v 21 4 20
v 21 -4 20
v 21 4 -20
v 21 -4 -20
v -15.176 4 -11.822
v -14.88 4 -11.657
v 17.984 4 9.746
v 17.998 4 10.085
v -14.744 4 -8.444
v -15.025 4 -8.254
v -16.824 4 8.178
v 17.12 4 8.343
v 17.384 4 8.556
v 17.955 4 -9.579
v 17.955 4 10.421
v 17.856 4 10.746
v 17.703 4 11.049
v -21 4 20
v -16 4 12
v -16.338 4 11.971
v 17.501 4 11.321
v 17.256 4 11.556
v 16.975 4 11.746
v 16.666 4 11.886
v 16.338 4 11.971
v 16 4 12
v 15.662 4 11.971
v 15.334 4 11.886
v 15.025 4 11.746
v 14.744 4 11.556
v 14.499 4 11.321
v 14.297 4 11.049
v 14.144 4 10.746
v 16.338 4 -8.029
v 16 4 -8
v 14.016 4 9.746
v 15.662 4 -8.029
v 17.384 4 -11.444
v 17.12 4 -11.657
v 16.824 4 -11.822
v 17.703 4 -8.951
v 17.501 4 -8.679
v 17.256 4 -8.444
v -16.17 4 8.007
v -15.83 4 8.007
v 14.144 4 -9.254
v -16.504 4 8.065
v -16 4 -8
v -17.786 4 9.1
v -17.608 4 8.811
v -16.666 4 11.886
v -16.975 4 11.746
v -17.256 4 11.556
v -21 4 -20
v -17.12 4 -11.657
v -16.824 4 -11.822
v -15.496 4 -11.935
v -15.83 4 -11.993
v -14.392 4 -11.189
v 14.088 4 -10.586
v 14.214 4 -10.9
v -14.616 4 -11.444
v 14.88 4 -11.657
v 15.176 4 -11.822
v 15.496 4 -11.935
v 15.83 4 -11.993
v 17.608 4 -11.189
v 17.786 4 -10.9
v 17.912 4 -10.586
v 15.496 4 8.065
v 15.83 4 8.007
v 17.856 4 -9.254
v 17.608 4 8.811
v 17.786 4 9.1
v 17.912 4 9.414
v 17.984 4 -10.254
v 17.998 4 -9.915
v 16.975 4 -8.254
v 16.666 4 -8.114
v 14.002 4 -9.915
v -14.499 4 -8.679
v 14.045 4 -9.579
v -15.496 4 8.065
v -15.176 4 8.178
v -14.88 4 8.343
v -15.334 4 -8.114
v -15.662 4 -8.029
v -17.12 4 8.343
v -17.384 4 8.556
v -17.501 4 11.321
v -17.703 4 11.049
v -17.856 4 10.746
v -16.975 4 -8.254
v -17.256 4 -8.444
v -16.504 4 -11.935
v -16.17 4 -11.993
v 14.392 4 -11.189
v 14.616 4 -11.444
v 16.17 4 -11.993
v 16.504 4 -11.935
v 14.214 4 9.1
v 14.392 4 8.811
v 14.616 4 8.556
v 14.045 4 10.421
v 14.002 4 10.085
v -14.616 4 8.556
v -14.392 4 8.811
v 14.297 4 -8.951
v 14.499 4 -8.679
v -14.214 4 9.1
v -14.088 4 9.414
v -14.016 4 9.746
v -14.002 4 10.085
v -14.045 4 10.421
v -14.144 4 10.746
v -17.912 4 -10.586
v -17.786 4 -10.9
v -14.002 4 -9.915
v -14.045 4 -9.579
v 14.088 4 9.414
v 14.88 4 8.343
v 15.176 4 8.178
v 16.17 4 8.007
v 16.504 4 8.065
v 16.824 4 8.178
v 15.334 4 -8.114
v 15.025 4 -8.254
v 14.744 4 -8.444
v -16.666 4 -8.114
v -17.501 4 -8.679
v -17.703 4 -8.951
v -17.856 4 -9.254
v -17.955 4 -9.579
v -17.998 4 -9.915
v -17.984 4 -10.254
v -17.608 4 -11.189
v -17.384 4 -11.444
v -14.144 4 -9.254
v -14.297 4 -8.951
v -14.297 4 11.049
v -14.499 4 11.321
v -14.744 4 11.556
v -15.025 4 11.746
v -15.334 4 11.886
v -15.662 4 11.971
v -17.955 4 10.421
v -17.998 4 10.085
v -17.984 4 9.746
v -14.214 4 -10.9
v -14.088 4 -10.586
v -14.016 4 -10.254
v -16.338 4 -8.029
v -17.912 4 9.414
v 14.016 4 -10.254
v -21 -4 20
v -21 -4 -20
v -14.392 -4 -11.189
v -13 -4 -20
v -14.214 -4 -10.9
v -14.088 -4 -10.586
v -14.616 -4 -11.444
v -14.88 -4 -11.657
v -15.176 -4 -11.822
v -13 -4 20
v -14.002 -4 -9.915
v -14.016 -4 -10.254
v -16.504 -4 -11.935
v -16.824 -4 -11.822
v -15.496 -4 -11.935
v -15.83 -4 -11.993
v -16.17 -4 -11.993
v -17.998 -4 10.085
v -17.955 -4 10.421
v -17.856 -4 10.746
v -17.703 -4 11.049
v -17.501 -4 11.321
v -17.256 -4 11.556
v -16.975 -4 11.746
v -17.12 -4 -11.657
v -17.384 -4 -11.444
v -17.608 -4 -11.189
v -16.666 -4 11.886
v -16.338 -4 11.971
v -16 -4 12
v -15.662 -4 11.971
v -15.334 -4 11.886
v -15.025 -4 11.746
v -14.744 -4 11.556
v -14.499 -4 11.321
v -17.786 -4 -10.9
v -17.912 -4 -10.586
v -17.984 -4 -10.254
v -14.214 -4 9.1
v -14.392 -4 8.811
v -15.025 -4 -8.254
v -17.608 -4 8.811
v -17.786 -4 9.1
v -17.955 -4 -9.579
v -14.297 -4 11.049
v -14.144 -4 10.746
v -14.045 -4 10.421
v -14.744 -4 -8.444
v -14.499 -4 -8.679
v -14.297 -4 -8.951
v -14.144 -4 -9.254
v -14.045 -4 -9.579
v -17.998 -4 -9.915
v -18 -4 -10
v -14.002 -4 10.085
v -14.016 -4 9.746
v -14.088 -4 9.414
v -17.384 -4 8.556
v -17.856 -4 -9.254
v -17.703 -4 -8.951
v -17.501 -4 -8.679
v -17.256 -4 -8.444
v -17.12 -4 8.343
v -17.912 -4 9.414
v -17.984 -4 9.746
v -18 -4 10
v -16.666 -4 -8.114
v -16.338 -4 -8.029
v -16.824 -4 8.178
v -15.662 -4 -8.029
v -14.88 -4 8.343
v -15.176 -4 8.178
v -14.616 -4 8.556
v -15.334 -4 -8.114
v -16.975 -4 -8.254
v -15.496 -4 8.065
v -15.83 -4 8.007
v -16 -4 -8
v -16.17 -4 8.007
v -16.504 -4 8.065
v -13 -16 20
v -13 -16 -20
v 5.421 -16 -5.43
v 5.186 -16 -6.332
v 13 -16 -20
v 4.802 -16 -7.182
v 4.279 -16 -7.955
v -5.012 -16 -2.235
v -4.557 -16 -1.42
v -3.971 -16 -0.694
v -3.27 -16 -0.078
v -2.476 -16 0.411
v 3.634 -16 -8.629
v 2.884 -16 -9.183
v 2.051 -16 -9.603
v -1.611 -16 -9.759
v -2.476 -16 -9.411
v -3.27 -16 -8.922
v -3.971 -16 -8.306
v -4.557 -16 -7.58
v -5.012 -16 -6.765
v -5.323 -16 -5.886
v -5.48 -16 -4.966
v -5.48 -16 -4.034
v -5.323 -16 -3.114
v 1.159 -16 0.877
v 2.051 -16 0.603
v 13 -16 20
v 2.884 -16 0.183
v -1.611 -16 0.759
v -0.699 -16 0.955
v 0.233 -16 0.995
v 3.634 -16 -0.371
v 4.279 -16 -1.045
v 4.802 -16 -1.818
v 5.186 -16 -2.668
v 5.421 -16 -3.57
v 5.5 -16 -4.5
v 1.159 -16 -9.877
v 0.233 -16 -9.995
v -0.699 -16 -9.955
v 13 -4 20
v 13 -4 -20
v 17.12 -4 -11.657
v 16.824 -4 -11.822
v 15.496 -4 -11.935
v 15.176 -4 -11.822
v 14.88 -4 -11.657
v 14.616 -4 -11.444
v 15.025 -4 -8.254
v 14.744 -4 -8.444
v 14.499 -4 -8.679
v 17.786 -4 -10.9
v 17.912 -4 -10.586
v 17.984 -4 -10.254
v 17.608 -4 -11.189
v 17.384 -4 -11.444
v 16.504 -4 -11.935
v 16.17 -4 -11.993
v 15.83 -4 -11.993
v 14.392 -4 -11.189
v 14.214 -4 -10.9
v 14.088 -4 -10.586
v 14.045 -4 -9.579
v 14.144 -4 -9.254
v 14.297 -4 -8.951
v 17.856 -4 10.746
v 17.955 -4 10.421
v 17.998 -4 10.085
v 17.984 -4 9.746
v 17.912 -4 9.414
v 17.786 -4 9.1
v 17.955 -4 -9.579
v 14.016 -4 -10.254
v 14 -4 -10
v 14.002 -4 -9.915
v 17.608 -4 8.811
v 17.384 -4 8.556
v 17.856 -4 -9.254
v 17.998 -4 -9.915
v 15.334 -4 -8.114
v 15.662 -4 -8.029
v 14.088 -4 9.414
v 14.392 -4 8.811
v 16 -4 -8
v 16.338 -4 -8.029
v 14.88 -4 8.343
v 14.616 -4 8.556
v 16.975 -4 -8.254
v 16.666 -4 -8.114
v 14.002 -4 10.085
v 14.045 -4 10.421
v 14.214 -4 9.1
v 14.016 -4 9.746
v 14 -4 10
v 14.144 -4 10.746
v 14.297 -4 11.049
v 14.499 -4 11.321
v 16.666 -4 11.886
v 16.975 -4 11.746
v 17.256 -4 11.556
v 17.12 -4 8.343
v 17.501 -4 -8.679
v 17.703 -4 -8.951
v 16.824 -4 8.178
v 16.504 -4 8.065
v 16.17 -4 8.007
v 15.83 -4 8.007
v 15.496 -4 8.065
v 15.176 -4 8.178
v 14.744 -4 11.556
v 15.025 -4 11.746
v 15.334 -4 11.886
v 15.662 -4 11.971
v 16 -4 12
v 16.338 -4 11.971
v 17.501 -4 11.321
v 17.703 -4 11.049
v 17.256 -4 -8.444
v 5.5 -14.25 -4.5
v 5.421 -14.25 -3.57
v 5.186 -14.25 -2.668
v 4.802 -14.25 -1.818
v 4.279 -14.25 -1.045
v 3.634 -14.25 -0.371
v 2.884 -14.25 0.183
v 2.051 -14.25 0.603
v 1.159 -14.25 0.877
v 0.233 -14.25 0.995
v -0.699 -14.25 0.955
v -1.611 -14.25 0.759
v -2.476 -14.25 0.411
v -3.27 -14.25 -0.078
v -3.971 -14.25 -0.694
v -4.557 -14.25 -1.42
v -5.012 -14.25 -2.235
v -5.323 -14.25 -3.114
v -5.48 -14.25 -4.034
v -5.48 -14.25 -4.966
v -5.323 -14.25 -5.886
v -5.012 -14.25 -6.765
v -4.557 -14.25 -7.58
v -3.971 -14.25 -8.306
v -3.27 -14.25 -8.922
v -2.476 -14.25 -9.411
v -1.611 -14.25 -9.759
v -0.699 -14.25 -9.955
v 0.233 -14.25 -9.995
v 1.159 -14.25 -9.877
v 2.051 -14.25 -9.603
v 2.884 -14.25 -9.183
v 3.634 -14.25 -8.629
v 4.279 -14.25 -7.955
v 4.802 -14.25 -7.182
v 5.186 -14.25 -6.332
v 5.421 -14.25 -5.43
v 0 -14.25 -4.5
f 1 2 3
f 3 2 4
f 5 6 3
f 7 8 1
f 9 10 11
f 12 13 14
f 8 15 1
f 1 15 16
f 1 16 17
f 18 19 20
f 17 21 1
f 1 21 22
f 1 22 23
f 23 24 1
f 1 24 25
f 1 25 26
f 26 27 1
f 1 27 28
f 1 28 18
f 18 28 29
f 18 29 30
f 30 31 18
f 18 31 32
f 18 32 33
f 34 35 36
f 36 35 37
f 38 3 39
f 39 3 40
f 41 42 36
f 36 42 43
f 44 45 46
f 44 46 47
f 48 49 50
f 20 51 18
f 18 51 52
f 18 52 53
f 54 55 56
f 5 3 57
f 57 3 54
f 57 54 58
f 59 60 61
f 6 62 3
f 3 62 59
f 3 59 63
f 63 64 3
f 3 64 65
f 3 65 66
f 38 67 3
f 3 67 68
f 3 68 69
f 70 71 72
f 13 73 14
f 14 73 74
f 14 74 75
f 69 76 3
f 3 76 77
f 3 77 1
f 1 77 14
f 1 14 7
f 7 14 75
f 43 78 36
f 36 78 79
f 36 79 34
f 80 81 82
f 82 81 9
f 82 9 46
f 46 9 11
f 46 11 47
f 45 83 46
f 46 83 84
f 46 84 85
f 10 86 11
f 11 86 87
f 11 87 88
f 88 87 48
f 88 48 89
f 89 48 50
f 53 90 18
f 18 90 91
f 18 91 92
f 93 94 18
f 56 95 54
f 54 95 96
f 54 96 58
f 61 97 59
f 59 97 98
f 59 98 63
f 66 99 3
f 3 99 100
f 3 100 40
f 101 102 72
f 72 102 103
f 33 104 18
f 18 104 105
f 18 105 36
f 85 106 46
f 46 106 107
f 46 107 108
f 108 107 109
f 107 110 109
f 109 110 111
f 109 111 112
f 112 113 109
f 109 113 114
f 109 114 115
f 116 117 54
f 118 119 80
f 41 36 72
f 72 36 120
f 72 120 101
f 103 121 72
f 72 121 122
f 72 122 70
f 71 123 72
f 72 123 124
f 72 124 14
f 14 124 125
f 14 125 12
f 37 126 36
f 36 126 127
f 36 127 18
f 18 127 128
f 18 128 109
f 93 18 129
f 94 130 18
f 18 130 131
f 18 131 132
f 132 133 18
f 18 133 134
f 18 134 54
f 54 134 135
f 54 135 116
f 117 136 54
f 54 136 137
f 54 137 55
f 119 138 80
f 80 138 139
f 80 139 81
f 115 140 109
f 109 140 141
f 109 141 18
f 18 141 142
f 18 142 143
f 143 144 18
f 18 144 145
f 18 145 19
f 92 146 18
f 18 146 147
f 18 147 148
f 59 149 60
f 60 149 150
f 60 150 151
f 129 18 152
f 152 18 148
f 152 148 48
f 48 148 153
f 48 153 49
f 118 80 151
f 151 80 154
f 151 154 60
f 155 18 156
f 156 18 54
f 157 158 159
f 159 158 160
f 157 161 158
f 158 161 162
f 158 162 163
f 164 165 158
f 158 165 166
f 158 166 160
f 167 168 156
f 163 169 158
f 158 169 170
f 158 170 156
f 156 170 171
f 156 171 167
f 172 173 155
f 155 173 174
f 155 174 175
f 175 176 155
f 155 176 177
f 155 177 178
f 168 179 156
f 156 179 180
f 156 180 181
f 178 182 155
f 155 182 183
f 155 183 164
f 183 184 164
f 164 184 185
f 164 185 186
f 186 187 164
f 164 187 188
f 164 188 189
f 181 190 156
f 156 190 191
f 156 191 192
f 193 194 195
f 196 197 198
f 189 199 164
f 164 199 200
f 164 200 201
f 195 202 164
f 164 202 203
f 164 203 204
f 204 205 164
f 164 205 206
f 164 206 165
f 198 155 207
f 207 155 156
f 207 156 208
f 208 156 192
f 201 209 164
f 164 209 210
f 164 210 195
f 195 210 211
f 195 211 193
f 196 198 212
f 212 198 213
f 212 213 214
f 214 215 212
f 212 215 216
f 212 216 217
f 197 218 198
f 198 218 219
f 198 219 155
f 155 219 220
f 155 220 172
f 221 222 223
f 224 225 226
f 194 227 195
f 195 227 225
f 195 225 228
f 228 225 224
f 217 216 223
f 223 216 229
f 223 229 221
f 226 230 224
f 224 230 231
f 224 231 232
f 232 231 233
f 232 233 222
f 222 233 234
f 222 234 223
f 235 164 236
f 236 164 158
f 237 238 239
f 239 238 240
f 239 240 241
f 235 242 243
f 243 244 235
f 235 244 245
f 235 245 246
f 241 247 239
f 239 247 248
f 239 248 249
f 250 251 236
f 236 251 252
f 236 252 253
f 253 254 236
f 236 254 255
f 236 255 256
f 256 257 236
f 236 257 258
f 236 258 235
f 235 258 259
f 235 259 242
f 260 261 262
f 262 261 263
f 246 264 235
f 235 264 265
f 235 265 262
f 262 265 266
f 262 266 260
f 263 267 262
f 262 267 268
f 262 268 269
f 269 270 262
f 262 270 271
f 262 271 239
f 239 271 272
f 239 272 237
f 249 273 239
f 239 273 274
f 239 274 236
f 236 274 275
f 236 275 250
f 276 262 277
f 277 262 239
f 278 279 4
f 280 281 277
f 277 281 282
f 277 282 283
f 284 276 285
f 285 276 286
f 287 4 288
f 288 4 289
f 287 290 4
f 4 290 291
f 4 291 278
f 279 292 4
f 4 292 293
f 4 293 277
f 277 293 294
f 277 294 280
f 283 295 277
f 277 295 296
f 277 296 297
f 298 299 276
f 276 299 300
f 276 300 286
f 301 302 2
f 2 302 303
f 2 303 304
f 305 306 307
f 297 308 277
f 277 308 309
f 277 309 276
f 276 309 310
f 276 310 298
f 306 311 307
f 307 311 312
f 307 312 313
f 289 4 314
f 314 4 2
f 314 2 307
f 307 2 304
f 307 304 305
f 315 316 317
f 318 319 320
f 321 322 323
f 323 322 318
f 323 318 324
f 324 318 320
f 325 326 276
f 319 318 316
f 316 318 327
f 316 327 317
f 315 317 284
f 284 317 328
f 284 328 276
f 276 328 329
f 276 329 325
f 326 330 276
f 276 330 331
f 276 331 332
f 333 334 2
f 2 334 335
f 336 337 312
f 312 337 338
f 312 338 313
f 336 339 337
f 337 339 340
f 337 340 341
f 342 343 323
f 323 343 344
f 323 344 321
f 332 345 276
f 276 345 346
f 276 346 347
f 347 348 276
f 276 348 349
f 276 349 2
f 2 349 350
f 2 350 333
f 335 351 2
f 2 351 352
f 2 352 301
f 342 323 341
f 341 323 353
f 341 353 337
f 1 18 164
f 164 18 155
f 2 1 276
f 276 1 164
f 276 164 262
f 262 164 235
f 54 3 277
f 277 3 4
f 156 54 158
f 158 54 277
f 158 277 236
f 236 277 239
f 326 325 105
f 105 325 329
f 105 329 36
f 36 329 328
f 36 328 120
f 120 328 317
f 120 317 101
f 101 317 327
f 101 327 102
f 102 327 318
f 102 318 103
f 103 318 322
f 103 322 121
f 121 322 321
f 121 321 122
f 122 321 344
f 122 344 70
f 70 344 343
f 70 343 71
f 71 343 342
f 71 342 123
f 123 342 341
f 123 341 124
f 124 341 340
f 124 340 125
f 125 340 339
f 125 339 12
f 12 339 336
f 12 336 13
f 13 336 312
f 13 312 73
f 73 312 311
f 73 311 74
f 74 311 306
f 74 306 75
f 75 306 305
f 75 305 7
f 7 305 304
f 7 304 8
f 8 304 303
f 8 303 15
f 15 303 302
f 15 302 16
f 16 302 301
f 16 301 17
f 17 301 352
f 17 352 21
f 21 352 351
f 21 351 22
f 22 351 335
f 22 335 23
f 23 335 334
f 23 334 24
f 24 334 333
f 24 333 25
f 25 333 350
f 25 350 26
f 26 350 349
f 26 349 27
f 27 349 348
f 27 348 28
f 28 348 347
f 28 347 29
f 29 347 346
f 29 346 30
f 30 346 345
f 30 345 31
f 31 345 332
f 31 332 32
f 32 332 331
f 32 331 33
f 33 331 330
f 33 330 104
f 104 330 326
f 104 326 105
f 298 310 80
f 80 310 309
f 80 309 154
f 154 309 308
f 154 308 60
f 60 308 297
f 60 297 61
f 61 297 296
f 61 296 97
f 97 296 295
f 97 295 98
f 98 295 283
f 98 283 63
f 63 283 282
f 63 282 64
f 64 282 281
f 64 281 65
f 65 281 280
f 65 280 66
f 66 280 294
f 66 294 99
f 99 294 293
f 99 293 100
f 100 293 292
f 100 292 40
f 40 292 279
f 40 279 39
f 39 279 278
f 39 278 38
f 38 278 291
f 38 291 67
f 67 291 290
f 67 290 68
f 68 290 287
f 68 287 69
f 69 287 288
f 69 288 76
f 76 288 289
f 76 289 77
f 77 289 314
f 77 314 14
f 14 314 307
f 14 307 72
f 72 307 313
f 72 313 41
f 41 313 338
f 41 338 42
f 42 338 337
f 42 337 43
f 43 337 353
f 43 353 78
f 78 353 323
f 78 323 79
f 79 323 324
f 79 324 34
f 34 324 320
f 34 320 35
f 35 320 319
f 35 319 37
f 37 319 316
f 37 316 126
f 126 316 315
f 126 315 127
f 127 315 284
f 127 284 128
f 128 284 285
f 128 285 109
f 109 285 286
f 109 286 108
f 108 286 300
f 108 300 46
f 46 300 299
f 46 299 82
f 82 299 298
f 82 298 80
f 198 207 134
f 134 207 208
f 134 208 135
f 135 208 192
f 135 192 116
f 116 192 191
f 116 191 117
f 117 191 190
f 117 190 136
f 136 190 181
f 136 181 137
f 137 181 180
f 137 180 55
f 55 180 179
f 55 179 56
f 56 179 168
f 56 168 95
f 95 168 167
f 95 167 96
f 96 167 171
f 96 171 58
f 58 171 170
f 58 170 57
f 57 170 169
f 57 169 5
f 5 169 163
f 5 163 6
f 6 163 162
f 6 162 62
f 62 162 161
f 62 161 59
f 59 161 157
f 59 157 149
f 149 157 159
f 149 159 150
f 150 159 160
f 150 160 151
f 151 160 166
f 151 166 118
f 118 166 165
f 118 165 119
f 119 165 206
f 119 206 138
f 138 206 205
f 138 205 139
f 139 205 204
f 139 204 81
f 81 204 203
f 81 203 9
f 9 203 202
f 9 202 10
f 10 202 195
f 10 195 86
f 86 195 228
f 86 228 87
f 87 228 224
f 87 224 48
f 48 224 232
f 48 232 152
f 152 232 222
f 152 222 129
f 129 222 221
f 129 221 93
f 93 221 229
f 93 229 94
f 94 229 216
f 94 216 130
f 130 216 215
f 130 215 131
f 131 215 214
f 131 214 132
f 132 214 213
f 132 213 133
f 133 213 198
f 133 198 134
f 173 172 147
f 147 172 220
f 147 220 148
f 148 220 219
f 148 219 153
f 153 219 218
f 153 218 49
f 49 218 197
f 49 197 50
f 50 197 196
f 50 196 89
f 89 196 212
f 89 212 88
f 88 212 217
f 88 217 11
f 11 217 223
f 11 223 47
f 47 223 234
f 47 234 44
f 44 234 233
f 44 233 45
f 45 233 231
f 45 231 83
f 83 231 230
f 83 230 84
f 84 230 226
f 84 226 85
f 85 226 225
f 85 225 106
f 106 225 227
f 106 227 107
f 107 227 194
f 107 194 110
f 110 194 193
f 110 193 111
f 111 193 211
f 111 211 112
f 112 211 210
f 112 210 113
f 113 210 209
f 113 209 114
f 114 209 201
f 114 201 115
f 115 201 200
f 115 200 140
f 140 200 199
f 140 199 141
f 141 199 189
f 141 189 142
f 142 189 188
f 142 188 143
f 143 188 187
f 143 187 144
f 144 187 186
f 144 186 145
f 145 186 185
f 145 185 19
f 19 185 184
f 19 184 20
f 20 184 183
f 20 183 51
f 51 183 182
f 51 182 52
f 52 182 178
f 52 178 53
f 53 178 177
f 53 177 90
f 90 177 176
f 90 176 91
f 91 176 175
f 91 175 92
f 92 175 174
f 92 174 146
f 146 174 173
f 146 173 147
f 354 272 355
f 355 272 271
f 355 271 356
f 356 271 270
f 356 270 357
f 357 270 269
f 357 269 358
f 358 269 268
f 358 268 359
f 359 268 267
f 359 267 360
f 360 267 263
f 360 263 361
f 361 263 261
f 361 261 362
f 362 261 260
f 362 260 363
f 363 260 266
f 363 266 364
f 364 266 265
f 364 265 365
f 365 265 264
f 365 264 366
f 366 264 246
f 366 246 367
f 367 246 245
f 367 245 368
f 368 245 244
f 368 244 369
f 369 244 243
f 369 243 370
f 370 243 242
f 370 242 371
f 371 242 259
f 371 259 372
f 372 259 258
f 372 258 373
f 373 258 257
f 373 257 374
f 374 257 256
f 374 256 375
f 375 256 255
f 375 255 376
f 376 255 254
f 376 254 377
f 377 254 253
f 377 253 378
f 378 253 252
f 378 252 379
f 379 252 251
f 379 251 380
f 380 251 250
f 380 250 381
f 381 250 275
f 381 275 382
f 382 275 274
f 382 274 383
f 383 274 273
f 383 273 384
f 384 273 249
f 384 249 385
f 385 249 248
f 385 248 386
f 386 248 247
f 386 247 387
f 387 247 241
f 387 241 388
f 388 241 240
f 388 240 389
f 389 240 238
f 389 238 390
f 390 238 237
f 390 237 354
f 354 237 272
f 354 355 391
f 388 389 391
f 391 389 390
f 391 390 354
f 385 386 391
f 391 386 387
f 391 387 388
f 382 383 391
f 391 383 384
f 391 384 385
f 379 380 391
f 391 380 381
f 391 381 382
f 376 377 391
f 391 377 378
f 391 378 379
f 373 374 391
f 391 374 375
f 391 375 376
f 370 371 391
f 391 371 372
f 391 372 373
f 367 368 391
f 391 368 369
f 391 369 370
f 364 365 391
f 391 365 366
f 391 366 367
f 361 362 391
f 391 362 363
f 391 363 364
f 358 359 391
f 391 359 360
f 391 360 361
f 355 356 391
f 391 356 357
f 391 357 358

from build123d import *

# Parameters (mm, degrees)
BOSS_EXTRUDE1_DEPTH = 20
SKETCH2_R           = 2
CUT_EXTRUDE1_DEPTH  = 40
SKETCH4_R           = 5.5
CUT_EXTRUDE2_DEPTH  = 1.75


with BuildPart() as part:
    # Sketch1 → Boss-Extrude1 (new body, symmetric)
    with BuildSketch(Plane.XY):
        Polygon((13, -4), (21, -4), (21, 4), (-21, 4), (-21, -4), (-13, -4), (-13, -16), (13, -16), align=None)
    extrude(amount=BOSS_EXTRUDE1_DEPTH, both=True)

    # Sketch2 → Cut-Extrude1 (cut)
    with BuildSketch(Plane(origin=(0, 4, 0), x_dir=(1, 0, 0), z_dir=(0, 1, 0))):
        with Locations((-16, 10)):
            Circle(SKETCH2_R)
        with Locations((16, 10)):
            Circle(SKETCH2_R)
        with Locations((-16, -10)):
            Circle(SKETCH2_R)
        with Locations((16, -10)):
            Circle(SKETCH2_R)
    extrude(amount=-CUT_EXTRUDE1_DEPTH, mode=Mode.SUBTRACT)

    # Sketch4 → Cut-Extrude2 (cut)
    with BuildSketch(Plane.XZ.offset(16)):
        with Locations((0, -4.5)):
            Circle(SKETCH4_R)
    extrude(amount=-CUT_EXTRUDE2_DEPTH, mode=Mode.SUBTRACT)


solid = part.part
